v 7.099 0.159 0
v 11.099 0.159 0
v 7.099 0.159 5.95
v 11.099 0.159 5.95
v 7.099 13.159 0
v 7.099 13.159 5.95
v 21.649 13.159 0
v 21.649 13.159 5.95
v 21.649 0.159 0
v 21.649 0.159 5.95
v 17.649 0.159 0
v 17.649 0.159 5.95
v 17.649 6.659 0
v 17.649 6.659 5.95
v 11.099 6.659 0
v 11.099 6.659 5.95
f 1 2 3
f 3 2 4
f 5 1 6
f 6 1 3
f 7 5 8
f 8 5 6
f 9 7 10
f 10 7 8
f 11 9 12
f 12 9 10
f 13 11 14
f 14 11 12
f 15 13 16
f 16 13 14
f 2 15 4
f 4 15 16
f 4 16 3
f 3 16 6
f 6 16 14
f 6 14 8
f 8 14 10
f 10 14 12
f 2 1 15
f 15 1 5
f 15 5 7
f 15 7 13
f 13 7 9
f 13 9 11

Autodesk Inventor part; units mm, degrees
ref_plane "YZ Plane" through (0, 0, 0) normal (1, 0, 0) x (0, 1, 0)
ref_plane "XZ Plane" through (0, 0, 0) normal (0, 1, 0) x (-1, 0, 0)
ref_plane "XY Plane" through (0, 0, 0) normal (0, 0, 1) x (1, 0, 0)
sketch "Náčrt1" plane through (0, 0, 0) normal (0, 0, 1) x (1, 0, 0)
  line L0 (7.0986, 0.1592) -> (11.0986, 0.1592)
  line L1 (11.0986, 0.1592) -> (11.0986, 6.6592)
  line L2 (11.0986, 6.6592) -> (17.6486, 6.6592)
  line L3 (17.6486, 6.6592) -> (17.6486, 0.1592)
  line L4 (17.6486, 0.1592) -> (21.6486, 0.1592)
  line L5 (21.6486, 0.1592) -> (21.6486, 13.1592)
  line L6 (21.6486, 13.1592) -> (7.0986, 13.1592)
  line L7 (7.0986, 13.1592) -> (7.0986, 0.1592)
  point P0 (0, 0)
  dimension "d0" = 6.55
  dimension "d1" = 4
  dimension "d2" = 4
  dimension "d3" = 6.5
  dimension "d4" = 13
extrude "Vysunutí1" add sketch "Náčrt1" along normal blind 5.95
equation "\"d2\" = d1"
properties part number "Spacer"
